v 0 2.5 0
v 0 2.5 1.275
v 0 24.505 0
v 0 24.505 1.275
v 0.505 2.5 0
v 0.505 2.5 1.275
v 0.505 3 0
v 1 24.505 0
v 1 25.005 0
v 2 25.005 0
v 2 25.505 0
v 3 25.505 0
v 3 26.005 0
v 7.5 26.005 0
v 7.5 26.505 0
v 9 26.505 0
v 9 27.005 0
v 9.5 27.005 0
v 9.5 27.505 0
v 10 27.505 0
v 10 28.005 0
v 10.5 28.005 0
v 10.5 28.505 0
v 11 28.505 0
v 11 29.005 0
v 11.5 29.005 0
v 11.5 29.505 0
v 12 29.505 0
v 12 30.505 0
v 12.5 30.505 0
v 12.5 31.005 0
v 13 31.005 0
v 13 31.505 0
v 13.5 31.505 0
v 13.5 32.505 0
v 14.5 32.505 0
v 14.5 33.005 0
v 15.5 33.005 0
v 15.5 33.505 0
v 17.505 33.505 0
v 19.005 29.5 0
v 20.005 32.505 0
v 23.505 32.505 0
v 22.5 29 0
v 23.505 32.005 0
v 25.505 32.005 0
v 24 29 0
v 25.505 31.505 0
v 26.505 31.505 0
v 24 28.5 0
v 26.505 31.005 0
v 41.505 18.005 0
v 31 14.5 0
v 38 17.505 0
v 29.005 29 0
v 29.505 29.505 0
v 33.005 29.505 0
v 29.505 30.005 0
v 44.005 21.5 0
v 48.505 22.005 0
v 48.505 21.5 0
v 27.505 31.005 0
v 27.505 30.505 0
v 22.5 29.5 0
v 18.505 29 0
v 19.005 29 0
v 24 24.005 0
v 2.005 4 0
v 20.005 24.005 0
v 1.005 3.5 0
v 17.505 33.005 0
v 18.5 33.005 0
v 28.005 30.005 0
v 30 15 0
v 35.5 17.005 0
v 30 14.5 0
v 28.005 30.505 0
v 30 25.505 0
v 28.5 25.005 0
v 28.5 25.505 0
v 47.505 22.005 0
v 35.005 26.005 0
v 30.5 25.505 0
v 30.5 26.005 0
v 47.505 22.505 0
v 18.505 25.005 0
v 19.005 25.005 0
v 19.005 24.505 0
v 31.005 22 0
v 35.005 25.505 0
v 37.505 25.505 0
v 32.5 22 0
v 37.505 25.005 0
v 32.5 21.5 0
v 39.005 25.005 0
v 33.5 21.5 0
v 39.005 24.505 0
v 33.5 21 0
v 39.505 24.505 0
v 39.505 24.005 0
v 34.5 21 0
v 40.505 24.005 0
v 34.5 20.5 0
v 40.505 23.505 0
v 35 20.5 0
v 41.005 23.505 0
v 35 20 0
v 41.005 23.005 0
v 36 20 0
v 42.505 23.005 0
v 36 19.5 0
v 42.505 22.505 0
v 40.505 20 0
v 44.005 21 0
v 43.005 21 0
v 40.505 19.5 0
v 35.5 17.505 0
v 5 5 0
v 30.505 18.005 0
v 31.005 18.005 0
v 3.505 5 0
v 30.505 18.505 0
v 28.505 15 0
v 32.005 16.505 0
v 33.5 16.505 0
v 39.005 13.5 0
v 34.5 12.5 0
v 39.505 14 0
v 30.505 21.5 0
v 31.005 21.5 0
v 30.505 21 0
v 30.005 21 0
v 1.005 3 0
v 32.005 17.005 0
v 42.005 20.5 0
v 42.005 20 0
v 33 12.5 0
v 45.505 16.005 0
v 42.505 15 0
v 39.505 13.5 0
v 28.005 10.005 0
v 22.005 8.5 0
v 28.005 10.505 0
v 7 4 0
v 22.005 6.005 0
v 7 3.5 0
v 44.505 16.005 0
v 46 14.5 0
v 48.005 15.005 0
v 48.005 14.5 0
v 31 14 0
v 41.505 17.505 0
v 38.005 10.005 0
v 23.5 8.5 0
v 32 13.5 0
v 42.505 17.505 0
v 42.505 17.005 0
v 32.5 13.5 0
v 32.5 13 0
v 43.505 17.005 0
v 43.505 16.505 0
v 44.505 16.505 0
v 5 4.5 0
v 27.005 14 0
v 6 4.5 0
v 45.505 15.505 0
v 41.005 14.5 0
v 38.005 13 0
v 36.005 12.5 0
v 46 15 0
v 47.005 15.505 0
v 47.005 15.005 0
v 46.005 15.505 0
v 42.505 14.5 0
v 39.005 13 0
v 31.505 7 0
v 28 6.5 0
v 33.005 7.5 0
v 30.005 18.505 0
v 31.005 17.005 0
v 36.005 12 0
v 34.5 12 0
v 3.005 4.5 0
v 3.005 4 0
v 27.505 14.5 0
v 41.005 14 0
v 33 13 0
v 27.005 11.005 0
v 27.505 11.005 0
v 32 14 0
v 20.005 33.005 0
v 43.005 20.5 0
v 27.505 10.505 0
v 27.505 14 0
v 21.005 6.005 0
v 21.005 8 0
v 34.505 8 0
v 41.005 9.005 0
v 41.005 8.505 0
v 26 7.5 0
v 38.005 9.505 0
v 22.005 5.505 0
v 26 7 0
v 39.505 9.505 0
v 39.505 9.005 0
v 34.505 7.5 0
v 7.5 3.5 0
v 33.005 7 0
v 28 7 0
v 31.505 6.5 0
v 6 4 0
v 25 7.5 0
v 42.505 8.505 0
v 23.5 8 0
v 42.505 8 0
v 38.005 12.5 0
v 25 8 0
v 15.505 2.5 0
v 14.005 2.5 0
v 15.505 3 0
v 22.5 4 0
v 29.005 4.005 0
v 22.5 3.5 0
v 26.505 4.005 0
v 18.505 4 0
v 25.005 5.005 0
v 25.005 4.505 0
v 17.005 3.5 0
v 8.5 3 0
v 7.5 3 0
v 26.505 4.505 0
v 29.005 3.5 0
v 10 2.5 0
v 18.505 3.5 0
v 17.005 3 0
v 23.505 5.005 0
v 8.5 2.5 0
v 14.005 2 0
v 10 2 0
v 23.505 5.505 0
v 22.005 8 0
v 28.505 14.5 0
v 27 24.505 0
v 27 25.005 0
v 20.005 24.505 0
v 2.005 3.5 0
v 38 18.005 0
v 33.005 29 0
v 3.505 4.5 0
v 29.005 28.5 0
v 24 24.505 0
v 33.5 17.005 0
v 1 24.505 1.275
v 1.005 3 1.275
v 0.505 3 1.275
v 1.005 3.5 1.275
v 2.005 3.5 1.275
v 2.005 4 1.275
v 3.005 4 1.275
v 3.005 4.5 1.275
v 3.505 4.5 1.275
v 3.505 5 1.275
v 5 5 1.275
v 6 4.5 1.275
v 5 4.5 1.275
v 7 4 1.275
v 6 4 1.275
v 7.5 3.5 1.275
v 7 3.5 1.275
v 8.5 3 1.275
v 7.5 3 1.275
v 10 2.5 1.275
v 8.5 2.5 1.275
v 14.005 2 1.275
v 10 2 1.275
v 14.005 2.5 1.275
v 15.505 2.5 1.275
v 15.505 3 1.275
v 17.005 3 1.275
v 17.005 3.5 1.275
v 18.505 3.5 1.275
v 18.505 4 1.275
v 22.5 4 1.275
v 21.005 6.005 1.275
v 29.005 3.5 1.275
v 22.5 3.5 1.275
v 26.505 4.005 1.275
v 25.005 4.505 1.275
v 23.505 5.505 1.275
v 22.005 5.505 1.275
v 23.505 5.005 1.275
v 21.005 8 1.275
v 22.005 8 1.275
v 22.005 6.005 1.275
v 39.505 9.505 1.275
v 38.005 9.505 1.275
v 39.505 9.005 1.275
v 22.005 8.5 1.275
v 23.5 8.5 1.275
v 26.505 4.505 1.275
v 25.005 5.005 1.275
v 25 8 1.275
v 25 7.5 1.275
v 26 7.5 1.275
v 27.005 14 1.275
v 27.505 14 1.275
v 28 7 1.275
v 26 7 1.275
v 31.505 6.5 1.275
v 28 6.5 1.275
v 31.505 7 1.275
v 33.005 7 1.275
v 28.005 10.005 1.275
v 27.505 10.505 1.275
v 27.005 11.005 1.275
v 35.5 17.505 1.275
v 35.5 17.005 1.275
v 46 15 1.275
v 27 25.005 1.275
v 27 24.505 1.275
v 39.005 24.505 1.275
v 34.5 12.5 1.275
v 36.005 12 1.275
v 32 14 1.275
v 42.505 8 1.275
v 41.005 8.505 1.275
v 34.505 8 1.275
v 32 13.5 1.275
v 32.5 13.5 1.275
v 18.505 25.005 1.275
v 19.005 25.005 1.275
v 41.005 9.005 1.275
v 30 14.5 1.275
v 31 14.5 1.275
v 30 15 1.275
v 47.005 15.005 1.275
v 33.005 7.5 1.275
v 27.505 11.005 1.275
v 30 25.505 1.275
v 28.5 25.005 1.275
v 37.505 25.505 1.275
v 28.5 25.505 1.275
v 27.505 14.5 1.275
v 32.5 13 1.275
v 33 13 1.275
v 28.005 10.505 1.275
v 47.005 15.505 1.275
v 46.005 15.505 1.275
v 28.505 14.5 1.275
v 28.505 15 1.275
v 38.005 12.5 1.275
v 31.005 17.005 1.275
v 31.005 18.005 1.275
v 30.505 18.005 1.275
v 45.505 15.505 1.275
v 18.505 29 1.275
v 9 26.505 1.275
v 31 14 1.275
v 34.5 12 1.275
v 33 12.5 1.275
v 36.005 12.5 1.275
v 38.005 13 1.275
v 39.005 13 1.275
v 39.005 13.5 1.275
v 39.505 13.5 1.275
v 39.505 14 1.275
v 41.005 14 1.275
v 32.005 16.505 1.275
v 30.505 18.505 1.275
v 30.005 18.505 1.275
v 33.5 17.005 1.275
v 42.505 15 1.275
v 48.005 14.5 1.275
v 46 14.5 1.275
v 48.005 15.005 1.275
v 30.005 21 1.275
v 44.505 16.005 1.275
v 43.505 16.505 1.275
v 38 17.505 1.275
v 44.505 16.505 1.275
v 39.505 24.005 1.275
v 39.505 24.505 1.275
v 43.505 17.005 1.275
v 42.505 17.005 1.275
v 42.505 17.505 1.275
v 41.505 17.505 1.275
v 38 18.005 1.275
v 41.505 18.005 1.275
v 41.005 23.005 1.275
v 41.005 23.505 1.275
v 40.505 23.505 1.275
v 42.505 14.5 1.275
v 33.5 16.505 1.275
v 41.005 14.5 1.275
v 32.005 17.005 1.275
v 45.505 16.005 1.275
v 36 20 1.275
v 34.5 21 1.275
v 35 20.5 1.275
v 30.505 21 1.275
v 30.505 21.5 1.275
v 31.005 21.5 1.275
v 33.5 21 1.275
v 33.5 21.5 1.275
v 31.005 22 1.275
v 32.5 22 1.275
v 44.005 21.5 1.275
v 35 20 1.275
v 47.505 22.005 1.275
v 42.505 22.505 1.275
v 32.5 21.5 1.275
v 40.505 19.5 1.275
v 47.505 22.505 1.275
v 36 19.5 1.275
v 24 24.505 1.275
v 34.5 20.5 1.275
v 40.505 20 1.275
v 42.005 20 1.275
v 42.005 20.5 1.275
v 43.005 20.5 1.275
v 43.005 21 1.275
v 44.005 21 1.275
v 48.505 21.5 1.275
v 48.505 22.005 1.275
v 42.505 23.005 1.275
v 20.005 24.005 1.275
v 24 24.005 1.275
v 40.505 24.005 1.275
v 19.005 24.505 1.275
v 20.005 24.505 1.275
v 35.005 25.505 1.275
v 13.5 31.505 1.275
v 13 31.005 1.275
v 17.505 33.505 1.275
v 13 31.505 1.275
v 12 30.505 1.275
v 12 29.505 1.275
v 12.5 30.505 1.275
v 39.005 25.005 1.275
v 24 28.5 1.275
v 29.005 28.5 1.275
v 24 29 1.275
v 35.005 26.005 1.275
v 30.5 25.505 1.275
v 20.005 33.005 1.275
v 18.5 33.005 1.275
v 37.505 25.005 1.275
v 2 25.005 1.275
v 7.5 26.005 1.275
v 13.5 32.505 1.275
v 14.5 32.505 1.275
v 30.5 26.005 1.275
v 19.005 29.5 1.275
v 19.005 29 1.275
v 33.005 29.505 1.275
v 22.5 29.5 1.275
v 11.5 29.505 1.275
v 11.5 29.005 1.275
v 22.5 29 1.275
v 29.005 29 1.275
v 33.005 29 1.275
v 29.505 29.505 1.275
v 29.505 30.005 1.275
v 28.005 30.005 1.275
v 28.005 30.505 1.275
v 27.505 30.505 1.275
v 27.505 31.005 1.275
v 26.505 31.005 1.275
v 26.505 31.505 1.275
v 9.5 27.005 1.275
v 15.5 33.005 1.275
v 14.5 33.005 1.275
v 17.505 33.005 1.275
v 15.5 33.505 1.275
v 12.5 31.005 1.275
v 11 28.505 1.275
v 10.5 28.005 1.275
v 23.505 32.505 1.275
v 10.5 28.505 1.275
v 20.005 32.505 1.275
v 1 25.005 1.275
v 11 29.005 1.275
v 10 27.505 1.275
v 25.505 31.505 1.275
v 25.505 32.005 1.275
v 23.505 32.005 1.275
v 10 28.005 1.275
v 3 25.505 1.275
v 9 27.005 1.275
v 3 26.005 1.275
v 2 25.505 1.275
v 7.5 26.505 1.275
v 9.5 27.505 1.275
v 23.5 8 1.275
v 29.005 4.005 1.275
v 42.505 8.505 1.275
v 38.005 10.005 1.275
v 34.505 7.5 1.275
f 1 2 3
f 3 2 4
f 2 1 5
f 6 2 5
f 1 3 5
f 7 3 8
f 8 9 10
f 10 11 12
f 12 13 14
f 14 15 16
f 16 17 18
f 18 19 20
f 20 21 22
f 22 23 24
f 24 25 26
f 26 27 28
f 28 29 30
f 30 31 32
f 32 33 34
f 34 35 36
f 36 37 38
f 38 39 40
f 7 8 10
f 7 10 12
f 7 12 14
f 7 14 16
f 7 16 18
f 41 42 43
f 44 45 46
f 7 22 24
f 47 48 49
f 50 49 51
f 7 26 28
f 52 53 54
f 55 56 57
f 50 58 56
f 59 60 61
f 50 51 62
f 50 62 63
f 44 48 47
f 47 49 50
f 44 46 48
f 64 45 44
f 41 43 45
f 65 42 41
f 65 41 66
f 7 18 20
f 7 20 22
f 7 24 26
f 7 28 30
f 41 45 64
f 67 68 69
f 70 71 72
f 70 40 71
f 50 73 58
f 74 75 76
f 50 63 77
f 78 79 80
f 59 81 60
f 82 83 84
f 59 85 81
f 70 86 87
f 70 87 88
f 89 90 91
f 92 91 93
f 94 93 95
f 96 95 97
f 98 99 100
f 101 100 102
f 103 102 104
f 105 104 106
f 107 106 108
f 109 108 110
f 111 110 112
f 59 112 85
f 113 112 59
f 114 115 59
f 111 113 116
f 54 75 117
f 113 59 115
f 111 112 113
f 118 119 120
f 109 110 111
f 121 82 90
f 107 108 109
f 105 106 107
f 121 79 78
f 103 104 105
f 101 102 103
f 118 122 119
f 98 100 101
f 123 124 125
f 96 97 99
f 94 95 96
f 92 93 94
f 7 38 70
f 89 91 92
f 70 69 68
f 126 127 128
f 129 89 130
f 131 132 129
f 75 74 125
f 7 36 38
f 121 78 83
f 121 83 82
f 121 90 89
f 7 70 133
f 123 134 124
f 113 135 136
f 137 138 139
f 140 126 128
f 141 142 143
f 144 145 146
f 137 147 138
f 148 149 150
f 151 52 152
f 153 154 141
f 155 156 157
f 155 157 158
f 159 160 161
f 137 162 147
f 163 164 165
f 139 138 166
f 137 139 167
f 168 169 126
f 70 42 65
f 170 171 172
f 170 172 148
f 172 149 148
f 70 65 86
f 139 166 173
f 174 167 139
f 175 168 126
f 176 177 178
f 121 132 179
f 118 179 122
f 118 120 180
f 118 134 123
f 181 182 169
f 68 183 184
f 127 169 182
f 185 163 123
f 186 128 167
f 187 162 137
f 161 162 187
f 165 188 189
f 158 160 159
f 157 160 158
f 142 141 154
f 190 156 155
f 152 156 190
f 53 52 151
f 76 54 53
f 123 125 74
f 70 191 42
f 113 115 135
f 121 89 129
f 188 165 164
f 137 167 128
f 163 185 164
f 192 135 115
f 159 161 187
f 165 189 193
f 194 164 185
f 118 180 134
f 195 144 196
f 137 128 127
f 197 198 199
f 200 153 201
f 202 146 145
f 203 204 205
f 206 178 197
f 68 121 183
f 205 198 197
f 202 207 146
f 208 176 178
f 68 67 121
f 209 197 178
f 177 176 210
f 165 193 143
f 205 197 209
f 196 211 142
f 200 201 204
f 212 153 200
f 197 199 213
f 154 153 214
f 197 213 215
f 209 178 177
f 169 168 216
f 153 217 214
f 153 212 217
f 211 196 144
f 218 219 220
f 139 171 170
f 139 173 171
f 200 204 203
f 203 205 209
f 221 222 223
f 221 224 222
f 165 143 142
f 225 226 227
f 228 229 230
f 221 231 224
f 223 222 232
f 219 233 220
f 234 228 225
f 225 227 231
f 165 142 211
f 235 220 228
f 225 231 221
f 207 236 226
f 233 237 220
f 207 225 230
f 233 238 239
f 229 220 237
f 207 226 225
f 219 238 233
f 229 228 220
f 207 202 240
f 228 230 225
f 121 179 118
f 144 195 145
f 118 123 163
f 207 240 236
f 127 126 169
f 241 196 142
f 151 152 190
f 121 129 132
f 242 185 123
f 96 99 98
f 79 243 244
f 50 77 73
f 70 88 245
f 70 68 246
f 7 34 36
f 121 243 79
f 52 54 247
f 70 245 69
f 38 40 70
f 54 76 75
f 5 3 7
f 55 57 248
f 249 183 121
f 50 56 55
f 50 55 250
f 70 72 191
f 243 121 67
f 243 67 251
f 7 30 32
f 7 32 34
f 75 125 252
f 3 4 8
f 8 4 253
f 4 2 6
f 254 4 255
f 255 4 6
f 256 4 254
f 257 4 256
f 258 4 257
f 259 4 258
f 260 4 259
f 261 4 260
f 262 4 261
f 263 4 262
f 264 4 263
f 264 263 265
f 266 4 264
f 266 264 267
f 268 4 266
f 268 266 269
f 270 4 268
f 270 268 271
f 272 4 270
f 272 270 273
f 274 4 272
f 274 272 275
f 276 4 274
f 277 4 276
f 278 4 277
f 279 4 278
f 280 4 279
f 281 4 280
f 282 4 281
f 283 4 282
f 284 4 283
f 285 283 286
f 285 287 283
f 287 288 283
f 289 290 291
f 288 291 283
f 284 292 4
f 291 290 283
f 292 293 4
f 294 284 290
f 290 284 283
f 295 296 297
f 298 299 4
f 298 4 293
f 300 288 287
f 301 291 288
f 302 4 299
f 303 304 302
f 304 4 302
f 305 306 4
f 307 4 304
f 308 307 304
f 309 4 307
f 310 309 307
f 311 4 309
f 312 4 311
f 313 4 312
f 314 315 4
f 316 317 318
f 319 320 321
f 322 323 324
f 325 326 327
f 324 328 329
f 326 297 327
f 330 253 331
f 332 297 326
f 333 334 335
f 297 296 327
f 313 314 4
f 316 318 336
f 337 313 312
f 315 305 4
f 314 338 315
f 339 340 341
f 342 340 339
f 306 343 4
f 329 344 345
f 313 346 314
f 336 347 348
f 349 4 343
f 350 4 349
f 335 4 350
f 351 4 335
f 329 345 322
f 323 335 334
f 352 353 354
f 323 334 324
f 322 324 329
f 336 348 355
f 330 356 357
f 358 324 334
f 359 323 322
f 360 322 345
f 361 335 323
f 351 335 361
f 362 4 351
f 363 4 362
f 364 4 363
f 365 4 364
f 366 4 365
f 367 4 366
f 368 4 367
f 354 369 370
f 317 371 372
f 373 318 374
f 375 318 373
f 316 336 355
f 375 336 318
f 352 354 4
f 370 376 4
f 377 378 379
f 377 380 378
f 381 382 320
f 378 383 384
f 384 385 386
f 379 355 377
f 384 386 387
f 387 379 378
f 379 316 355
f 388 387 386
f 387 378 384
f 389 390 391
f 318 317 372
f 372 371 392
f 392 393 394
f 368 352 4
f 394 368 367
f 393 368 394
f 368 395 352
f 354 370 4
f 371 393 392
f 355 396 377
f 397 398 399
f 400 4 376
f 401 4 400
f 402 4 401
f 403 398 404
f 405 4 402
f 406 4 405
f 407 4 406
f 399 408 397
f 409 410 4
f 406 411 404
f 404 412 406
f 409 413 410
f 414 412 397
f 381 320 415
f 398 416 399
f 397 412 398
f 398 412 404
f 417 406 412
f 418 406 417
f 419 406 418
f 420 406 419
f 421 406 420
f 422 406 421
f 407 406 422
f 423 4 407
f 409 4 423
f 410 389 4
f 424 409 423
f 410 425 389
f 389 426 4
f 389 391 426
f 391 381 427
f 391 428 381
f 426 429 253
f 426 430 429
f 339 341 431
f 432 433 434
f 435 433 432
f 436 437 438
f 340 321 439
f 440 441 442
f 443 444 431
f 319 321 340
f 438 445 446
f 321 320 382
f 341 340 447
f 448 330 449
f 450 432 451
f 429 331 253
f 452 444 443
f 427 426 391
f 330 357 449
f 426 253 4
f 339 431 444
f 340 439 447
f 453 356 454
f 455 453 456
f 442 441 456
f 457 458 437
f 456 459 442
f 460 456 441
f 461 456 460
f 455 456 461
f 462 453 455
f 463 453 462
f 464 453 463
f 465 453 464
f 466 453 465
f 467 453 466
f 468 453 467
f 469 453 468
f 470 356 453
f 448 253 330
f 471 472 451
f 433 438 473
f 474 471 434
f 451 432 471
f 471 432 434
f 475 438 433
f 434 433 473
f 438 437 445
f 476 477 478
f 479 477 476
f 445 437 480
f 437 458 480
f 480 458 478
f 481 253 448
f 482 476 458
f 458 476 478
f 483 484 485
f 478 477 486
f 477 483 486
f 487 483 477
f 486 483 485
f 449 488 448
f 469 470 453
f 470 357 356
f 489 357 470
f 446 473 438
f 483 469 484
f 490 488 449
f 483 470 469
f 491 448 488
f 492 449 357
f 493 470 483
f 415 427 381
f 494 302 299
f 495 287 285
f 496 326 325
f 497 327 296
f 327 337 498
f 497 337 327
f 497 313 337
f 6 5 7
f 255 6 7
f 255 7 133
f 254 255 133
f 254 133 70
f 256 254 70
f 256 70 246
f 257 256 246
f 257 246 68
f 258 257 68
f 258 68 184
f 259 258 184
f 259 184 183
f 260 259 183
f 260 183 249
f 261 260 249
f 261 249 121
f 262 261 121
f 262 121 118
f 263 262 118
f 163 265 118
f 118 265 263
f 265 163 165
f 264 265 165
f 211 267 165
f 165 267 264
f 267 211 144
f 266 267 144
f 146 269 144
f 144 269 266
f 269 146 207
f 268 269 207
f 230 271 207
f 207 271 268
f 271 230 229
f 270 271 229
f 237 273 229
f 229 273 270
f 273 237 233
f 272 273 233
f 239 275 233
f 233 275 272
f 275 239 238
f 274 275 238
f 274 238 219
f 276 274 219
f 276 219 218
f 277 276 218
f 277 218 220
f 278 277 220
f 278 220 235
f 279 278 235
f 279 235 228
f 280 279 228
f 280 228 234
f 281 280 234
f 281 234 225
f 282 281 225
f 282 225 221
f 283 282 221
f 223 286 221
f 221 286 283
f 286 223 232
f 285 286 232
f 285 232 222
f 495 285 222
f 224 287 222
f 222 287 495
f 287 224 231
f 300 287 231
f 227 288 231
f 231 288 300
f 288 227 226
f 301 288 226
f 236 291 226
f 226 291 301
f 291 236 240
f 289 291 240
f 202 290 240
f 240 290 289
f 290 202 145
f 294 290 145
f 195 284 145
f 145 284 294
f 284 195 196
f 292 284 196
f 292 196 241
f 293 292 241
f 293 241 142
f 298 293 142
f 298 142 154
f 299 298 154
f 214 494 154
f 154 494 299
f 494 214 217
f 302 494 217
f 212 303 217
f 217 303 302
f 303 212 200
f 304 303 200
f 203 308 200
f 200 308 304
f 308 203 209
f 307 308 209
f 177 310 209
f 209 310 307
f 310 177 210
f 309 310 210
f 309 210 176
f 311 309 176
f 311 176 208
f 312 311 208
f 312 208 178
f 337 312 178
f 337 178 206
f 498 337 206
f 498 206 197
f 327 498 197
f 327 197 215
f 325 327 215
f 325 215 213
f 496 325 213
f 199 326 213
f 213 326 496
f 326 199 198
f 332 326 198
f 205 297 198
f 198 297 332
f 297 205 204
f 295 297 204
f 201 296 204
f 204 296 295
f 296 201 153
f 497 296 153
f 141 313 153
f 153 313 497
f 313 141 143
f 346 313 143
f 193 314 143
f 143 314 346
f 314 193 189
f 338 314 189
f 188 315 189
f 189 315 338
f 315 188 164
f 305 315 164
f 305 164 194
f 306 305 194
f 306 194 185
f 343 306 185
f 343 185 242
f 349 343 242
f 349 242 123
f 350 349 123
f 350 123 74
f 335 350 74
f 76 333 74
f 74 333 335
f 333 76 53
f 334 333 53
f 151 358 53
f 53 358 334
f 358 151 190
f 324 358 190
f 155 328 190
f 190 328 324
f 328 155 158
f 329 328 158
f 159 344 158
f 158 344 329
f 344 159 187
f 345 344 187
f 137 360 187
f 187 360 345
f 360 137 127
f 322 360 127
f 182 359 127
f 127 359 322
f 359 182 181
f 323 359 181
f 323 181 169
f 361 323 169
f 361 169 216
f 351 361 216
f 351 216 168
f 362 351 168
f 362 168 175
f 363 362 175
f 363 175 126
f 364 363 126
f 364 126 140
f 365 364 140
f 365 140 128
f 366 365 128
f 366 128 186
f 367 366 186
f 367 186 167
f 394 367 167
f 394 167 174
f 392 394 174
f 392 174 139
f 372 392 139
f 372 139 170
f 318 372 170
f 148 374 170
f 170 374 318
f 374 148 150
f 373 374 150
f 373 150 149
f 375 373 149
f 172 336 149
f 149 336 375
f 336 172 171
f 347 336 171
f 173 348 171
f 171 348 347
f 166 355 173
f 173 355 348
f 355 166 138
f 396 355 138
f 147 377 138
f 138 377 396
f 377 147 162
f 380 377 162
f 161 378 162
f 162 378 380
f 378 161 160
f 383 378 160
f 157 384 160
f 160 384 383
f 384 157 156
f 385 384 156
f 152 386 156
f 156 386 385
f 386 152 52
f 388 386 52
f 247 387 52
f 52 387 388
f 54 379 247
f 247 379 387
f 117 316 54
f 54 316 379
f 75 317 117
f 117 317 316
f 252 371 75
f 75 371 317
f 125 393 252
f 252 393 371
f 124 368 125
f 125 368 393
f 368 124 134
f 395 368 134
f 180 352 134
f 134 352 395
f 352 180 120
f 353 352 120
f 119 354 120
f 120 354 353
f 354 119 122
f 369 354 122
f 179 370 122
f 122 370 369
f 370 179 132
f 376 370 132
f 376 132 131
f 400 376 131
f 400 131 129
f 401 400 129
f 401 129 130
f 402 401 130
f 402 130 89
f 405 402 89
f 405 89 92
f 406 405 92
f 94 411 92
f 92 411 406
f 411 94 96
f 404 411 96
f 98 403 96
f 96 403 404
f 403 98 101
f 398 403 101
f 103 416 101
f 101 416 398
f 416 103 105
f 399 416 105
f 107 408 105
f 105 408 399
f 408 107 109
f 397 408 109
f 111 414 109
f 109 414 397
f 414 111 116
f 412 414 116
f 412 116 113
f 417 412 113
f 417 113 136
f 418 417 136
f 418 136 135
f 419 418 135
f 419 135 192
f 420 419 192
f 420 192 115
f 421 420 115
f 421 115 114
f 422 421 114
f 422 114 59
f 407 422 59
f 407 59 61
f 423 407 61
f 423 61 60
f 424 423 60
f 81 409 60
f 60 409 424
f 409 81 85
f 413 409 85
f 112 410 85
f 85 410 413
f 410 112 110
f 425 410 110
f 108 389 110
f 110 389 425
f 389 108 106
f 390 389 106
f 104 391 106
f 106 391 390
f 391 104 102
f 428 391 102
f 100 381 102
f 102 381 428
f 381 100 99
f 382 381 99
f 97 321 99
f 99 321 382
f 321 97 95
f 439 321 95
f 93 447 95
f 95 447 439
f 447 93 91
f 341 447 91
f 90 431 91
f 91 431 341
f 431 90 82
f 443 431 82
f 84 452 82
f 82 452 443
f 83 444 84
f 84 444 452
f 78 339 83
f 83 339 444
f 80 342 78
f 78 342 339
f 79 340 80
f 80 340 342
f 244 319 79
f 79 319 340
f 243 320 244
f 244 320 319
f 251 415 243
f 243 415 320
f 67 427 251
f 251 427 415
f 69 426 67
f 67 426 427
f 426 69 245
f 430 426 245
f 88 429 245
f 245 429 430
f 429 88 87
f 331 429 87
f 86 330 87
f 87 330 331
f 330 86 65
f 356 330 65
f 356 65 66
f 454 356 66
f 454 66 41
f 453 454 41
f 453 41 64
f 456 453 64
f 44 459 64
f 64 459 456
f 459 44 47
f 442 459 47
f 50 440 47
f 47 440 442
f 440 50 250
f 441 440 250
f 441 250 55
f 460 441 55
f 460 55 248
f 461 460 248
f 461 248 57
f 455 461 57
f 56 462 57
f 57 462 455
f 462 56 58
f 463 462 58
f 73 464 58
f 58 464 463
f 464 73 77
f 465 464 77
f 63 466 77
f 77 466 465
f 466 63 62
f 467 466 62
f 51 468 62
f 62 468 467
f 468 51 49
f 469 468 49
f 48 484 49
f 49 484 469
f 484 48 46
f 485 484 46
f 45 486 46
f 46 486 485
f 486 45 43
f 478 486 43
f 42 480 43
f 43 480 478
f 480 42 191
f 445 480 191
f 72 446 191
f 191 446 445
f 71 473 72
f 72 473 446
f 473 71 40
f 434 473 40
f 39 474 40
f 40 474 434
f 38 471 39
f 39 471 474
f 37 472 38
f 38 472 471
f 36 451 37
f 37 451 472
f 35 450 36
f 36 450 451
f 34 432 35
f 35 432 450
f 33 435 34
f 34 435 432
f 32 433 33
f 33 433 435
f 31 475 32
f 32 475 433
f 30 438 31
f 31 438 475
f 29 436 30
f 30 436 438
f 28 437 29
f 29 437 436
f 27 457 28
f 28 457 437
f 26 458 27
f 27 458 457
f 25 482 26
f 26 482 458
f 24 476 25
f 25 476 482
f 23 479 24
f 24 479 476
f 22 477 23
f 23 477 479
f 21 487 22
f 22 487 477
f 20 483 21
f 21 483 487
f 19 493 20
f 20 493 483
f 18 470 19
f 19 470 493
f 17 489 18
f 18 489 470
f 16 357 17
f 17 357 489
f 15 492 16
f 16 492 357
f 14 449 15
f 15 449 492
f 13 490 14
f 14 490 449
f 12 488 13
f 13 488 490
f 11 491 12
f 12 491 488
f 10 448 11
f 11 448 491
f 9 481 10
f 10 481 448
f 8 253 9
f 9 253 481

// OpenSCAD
module image_MakeALot() {
	 union() {
		translate([0,5,0]) cube([1.01,44.01,255]);
		translate([1,6,0]) cube([1.01,43.01,255]);
		translate([2,7,0]) cube([1.01,43.01,255]);
		translate([3,7,0]) cube([1.01,43.01,255]);
		translate([4,8,0]) cube([1.01,43.01,255]);
		translate([5,8,0]) cube([1.01,43.01,255]);
		translate([6,9,0]) cube([1.01,43.01,255]);
		translate([7,10,0]) cube([1.01,42.01,255]);
		translate([8,10,0]) cube([1.01,42.01,255]);
		translate([9,10,0]) cube([1.01,42.01,255]);
		translate([10,9,0]) cube([1.01,43.01,255]);
		translate([11,9,0]) cube([1.01,43.01,255]);
		translate([12,8,0]) cube([1.01,44.01,255]);
		translate([13,8,0]) cube([1.01,44.01,255]);
		translate([14,7,0]) cube([1.01,45.01,255]);
		translate([15,6,0]) cube([1.01,47.01,255]);
		translate([16,6,0]) cube([1.01,47.01,255]);
		translate([17,5,0]) cube([1.01,48.01,255]);
		translate([18,5,0]) cube([1.01,49.01,255]);
		translate([19,5,0]) cube([1.01,50.01,255]);
		translate([20,4,0]) cube([1.01,52.01,255]);
		translate([21,4,0]) cube([1.01,53.01,255]);
		translate([22,4,0]) cube([1.01,54.01,255]);
		translate([23,4,0]) cube([1.01,55.01,255]);
		translate([24,4,0]) cube([1.01,57.01,255]);
		translate([25,4,0]) cube([1.01,58.01,255]);
		translate([26,4,0]) cube([1.01,59.01,255]);
		translate([27,4,0]) cube([1.01,61.01,255]);
		translate([28,5,0]) cube([1.01,60.01,255]);
		translate([29,5,0]) cube([1.01,61.01,255]);
		translate([30,5,0]) cube([1.01,61.01,255]);
		translate([31,6,0]) cube([1.01,61.01,255]);
		translate([32,6,0]) cube([1.01,61.01,255]);
		translate([33,6,0]) cube([1.01,61.01,255]);
		translate([34,7,0]) cube([1.01,60.01,255]);
		translate([35,7,0]) cube([1.01,59.01,255]);
		translate([36,7,0]) cube([1.01,59.01,255]);
		translate([37,8,0]) cube([1.01,42.01,255]);
		translate([37,58,0]) cube([1.01,8.01,255]);
		translate([38,8,0]) cube([1.01,41.01,255]);
		translate([38,59,0]) cube([1.01,7.01,255]);
		translate([39,8,0]) cube([1.01,41.01,255]);
		translate([39,59,0]) cube([1.01,7.01,255]);
		translate([40,8,0]) cube([1.01,40.01,255]);
		translate([40,59,0]) cube([1.01,6.01,255]);
		translate([41,8,0]) cube([1.01,40.01,255]);
		translate([41,59,0]) cube([1.01,6.01,255]);
		translate([42,8,0]) cube([1.01,4.01,255]);
		translate([42,16,0]) cube([1.01,32.01,255]);
		translate([42,59,0]) cube([1.01,6.01,255]);
		translate([43,8,0]) cube([1.01,4.01,255]);
		translate([43,16,0]) cube([1.01,32.01,255]);
		translate([43,59,0]) cube([1.01,6.01,255]);
		translate([44,8,0]) cube([1.01,3.01,255]);
		translate([44,17,0]) cube([1.01,31.01,255]);
		translate([44,59,0]) cube([1.01,6.01,255]);
		translate([45,7,0]) cube([1.01,4.01,255]);
		translate([45,17,0]) cube([1.01,31.01,255]);
		translate([45,58,0]) cube([1.01,7.01,255]);
		translate([46,7,0]) cube([1.01,4.01,255]);
		translate([46,17,0]) cube([1.01,31.01,255]);
		translate([46,58,0]) cube([1.01,7.01,255]);
		translate([47,7,0]) cube([1.01,3.01,255]);
		translate([47,16,0]) cube([1.01,32.01,255]);
		translate([47,58,0]) cube([1.01,6.01,255]);
		translate([48,7,0]) cube([1.01,3.01,255]);
		translate([48,16,0]) cube([1.01,33.01,255]);
		translate([48,57,0]) cube([1.01,7.01,255]);
		translate([49,7,0]) cube([1.01,3.01,255]);
		translate([49,16,0]) cube([1.01,33.01,255]);
		translate([49,57,0]) cube([1.01,7.01,255]);
		translate([50,7,0]) cube([1.01,2.01,255]);
		translate([50,15,0]) cube([1.01,34.01,255]);
		translate([50,57,0]) cube([1.01,7.01,255]);
		translate([51,7,0]) cube([1.01,2.01,255]);
		translate([51,15,0]) cube([1.01,34.01,255]);
		translate([51,57,0]) cube([1.01,6.01,255]);
		translate([52,7,0]) cube([1.01,2.01,255]);
		translate([52,14,0]) cube([1.01,35.01,255]);
		translate([52,57,0]) cube([1.01,6.01,255]);
		translate([53,7,0]) cube([1.01,1.01,255]);
		translate([53,14,0]) cube([1.01,35.01,255]);
		translate([53,57,0]) cube([1.01,5.01,255]);
		translate([54,7,0]) cube([1.01,1.01,255]);
		translate([54,14,0]) cube([1.01,8.01,255]);
		translate([54,28,0]) cube([1.01,22.01,255]);
		translate([54,57,0]) cube([1.01,5.01,255]);
		translate([55,7,0]) cube([1.01,1.01,255]);
		translate([55,14,0]) cube([1.01,7.01,255]);
		translate([55,29,0]) cube([1.01,21.01,255]);
		translate([55,57,0]) cube([1.01,4.01,255]);
		translate([56,7,0]) cube([1.01,1.01,255]);
		translate([56,13,0]) cube([1.01,7.01,255]);
		translate([56,29,0]) cube([1.01,21.01,255]);
		translate([56,57,0]) cube([1.01,3.01,255]);
		translate([57,7,0]) cube([1.01,1.01,255]);
		translate([57,13,0]) cube([1.01,7.01,255]);
		translate([57,30,0]) cube([1.01,21.01,255]);
		translate([57,57,0]) cube([1.01,3.01,255]);
		translate([58,13,0]) cube([1.01,7.01,255]);
		translate([58,30,0]) cube([1.01,21.01,255]);
		translate([58,58,0]) cube([1.01,2.01,255]);
		translate([59,13,0]) cube([1.01,7.01,255]);
		translate([59,30,0]) cube([1.01,21.01,255]);
		translate([59,58,0]) cube([1.01,1.01,255]);
		translate([60,13,0]) cube([1.01,7.01,255]);
		translate([60,29,0]) cube([1.01,8.01,255]);
		translate([60,42,0]) cube([1.01,9.01,255]);
		translate([60,58,0]) cube([1.01,1.01,255]);
		translate([61,13,0]) cube([1.01,7.01,255]);
		translate([61,29,0]) cube([1.01,7.01,255]);
		translate([61,43,0]) cube([1.01,9.01,255]);
		translate([61,58,0]) cube([1.01,1.01,255]);
		translate([62,13,0]) cube([1.01,7.01,255]);
		translate([62,28,0]) cube([1.01,6.01,255]);
		translate([62,44,0]) cube([1.01,8.01,255]);
		translate([62,58,0]) cube([1.01,1.01,255]);
		translate([63,14,0]) cube([1.01,6.01,255]);
		translate([63,28,0]) cube([1.01,6.01,255]);
		translate([63,44,0]) cube([1.01,8.01,255]);
		translate([63,58,0]) cube([1.01,1.01,255]);
		translate([64,14,0]) cube([1.01,6.01,255]);
		translate([64,27,0]) cube([1.01,6.01,255]);
		translate([64,44,0]) cube([1.01,8.01,255]);
		translate([64,58,0]) cube([1.01,1.01,255]);
		translate([65,14,0]) cube([1.01,6.01,255]);
		translate([65,26,0]) cube([1.01,7.01,255]);
		translate([65,43,0]) cube([1.01,9.01,255]);
		translate([65,58,0]) cube([1.01,1.01,255]);
		translate([66,15,0]) cube([1.01,5.01,255]);
		translate([66,25,0]) cube([1.01,8.01,255]);
		translate([66,43,0]) cube([1.01,9.01,255]);
		translate([67,15,0]) cube([1.01,5.01,255]);
		translate([67,25,0]) cube([1.01,9.01,255]);
		translate([67,42,0]) cube([1.01,10.01,255]);
		translate([68,15,0]) cube([1.01,5.01,255]);
		translate([68,25,0]) cube([1.01,9.01,255]);
		translate([68,42,0]) cube([1.01,10.01,255]);
		translate([69,16,0]) cube([1.01,4.01,255]);
		translate([69,24,0]) cube([1.01,10.01,255]);
		translate([69,41,0]) cube([1.01,11.01,255]);
		translate([70,16,0]) cube([1.01,4.01,255]);
		translate([70,24,0]) cube([1.01,10.01,255]);
		translate([70,40,0]) cube([1.01,11.01,255]);
		translate([71,16,0]) cube([1.01,4.01,255]);
		translate([71,24,0]) cube([1.01,11.01,255]);
		translate([71,40,0]) cube([1.01,11.01,255]);
		translate([72,16,0]) cube([1.01,4.01,255]);
		translate([72,25,0]) cube([1.01,10.01,255]);
		translate([72,39,0]) cube([1.01,12.01,255]);
		translate([73,16,0]) cube([1.01,4.01,255]);
		translate([73,25,0]) cube([1.01,10.01,255]);
		translate([73,39,0]) cube([1.01,12.01,255]);
		translate([74,16,0]) cube([1.01,4.01,255]);
		translate([74,25,0]) cube([1.01,10.01,255]);
		translate([74,39,0]) cube([1.01,12.01,255]);
		translate([75,16,0]) cube([1.01,4.01,255]);
		translate([75,25,0]) cube([1.01,10.01,255]);
		translate([75,39,0]) cube([1.01,11.01,255]);
		translate([76,16,0]) cube([1.01,3.01,255]);
		translate([76,26,0]) cube([1.01,10.01,255]);
		translate([76,39,0]) cube([1.01,11.01,255]);
		translate([77,16,0]) cube([1.01,3.01,255]);
		translate([77,26,0]) cube([1.01,10.01,255]);
		translate([77,39,0]) cube([1.01,11.01,255]);
		translate([78,16,0]) cube([1.01,3.01,255]);
		translate([78,27,0]) cube([1.01,9.01,255]);
		translate([78,39,0]) cube([1.01,10.01,255]);
		translate([79,16,0]) cube([1.01,2.01,255]);
		translate([79,28,0]) cube([1.01,8.01,255]);
		translate([79,39,0]) cube([1.01,9.01,255]);
		translate([80,16,0]) cube([1.01,2.01,255]);
		translate([80,28,0]) cube([1.01,8.01,255]);
		translate([80,39,0]) cube([1.01,9.01,255]);
		translate([81,16,0]) cube([1.01,2.01,255]);
		translate([81,28,0]) cube([1.01,8.01,255]);
		translate([81,40,0]) cube([1.01,7.01,255]);
		translate([82,16,0]) cube([1.01,1.01,255]);
		translate([82,29,0]) cube([1.01,7.01,255]);
		translate([82,40,0]) cube([1.01,6.01,255]);
		translate([83,16,0]) cube([1.01,1.01,255]);
		translate([83,29,0]) cube([1.01,6.01,255]);
		translate([83,40,0]) cube([1.01,6.01,255]);
		translate([84,16,0]) cube([1.01,1.01,255]);
		translate([84,29,0]) cube([1.01,6.01,255]);
		translate([84,41,0]) cube([1.01,5.01,255]);
		translate([85,30,0]) cube([1.01,4.01,255]);
		translate([85,41,0]) cube([1.01,4.01,255]);
		translate([86,30,0]) cube([1.01,4.01,255]);
		translate([86,42,0]) cube([1.01,3.01,255]);
		translate([87,30,0]) cube([1.01,3.01,255]);
		translate([87,42,0]) cube([1.01,3.01,255]);
		translate([88,30,0]) cube([1.01,3.01,255]);
		translate([88,43,0]) cube([1.01,2.01,255]);
		translate([89,30,0]) cube([1.01,2.01,255]);
		translate([89,43,0]) cube([1.01,2.01,255]);
		translate([90,30,0]) cube([1.01,2.01,255]);
		translate([90,43,0]) cube([1.01,2.01,255]);
		translate([91,30,0]) cube([1.01,1.01,255]);
		translate([91,43,0]) cube([1.01,2.01,255]);
		translate([92,29,0]) cube([1.01,2.01,255]);
		translate([92,43,0]) cube([1.01,2.01,255]);
		translate([93,29,0]) cube([1.01,2.01,255]);
		translate([93,43,0]) cube([1.01,2.01,255]);
		translate([94,29,0]) cube([1.01,1.01,255]);
		translate([94,43,0]) cube([1.01,2.01,255]);
		translate([95,29,0]) cube([1.01,1.01,255]);
		translate([95,43,0]) cube([1.01,1.01,255]);
		translate([96,43,0]) cube([1.01,1.01,255]);
	}
}
 scale([0.5,0.5,0.005]) image_MakeALot();
